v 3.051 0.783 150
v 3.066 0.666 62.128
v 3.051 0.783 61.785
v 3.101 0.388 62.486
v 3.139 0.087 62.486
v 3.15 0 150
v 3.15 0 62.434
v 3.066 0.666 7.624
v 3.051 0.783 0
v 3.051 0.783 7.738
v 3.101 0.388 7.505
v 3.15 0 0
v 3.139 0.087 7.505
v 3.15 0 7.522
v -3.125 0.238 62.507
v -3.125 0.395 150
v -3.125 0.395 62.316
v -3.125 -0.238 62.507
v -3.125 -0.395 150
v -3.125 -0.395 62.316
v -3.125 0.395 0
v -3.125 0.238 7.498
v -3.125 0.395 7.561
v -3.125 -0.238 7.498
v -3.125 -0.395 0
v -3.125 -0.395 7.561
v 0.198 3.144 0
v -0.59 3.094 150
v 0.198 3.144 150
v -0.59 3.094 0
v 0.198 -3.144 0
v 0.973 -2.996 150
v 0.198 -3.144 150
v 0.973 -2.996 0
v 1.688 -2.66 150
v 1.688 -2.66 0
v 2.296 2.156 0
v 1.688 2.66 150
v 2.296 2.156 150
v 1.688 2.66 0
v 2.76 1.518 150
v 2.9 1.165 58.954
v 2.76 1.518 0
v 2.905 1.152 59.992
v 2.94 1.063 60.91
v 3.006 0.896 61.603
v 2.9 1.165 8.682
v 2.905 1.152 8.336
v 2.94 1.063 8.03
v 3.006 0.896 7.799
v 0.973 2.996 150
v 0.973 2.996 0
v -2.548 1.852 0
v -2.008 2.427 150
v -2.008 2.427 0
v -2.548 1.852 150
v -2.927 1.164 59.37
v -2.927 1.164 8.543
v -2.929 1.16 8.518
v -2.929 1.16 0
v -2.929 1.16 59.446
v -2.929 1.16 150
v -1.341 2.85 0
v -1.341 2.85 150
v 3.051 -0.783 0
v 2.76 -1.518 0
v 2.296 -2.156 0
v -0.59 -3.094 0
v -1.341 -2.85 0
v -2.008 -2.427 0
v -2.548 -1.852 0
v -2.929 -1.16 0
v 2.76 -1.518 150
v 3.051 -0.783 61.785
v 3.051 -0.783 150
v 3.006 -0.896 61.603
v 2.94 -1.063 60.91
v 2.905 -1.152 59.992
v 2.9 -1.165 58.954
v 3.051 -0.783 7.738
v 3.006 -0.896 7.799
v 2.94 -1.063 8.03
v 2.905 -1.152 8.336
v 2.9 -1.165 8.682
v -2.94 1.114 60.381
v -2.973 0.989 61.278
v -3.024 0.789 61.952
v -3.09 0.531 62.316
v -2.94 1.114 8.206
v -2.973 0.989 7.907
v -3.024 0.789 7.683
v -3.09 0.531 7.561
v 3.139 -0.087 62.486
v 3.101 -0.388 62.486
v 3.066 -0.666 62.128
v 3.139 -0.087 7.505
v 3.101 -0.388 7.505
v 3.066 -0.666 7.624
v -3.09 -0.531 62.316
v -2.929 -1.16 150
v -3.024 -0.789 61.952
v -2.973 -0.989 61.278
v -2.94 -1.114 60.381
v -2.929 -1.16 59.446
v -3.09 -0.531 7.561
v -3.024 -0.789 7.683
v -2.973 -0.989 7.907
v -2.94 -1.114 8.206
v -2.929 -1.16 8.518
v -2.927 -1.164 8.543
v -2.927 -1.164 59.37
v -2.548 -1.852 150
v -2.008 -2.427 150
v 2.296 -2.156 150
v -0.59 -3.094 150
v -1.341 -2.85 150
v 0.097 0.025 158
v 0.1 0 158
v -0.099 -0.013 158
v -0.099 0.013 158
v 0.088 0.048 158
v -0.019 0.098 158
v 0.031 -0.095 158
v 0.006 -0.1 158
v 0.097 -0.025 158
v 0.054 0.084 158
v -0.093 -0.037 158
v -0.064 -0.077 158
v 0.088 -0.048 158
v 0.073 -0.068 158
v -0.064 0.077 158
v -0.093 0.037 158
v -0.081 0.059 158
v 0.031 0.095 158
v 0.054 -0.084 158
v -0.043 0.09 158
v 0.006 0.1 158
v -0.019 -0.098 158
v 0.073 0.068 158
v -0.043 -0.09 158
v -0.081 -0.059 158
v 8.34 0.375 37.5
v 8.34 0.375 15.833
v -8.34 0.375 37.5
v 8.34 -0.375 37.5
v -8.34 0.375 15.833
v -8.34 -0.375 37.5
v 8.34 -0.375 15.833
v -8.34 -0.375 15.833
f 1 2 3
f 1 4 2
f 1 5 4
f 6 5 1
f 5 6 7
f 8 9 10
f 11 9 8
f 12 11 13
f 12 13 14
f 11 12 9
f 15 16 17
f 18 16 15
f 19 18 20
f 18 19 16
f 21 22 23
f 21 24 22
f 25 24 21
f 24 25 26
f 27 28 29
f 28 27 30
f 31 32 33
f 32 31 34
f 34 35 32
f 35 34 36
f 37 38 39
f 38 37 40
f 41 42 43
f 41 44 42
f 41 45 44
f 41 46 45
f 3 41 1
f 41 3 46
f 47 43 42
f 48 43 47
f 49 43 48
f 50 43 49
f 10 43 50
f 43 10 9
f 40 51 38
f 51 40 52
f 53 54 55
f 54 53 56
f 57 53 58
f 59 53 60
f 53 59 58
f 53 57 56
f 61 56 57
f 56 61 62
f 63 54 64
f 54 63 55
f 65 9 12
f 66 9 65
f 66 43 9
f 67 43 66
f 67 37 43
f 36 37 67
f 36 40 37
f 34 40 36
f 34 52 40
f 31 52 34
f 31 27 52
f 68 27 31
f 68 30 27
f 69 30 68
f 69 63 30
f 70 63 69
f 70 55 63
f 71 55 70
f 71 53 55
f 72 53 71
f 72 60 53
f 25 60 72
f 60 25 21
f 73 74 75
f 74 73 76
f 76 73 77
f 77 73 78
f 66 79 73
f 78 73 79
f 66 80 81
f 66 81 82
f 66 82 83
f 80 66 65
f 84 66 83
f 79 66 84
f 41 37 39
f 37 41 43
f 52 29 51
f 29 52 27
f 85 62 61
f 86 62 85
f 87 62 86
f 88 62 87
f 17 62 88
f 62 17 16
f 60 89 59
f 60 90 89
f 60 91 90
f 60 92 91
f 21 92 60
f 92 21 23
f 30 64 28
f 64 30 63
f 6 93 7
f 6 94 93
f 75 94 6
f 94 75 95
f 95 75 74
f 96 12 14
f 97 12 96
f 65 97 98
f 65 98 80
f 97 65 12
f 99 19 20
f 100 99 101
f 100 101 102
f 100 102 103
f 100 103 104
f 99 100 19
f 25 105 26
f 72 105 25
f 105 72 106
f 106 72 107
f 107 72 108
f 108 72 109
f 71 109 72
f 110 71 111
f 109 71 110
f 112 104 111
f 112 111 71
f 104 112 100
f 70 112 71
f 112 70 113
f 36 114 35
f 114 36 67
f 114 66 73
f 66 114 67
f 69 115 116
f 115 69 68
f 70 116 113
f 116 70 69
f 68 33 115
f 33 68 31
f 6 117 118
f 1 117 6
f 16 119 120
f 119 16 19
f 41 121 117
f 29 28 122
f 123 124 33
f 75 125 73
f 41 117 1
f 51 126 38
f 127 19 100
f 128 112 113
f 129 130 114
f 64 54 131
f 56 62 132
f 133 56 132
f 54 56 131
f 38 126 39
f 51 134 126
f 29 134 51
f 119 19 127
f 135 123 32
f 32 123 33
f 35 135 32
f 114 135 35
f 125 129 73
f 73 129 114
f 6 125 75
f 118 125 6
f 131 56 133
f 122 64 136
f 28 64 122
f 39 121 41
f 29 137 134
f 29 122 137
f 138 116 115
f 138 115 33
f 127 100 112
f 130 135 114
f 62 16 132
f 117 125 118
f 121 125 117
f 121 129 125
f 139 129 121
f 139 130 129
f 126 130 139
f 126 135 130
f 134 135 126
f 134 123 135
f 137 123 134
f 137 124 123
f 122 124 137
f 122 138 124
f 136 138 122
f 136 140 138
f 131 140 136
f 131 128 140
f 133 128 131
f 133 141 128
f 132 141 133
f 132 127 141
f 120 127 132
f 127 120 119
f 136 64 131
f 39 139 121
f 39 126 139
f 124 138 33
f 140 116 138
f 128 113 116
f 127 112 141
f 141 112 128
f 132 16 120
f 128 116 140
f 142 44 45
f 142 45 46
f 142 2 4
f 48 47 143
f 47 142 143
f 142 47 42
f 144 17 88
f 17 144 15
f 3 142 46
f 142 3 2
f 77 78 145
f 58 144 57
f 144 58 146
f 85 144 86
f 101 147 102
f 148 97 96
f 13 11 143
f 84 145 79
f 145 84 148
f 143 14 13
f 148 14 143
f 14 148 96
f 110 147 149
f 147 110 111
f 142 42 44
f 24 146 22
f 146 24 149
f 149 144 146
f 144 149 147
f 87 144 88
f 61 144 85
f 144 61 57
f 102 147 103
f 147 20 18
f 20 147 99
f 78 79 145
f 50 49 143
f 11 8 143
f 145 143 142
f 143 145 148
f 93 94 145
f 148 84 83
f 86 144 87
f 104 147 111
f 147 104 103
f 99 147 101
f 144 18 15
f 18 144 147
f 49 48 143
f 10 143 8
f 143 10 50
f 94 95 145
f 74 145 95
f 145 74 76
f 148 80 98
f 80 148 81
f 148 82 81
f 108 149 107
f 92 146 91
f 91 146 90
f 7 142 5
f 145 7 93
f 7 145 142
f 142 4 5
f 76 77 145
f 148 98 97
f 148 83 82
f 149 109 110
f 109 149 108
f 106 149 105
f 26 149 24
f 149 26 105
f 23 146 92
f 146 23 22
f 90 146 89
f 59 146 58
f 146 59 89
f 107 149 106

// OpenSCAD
shaft_diameter = 6.3;
shaft_length = 150;
fletching_length = 65;
fletching_width = 16.68;
fletching_depth = .75;
point_length = 8;

// shaft
cylinder(r=shaft_diameter/2,h=shaft_length, $fn=25);

// tip
translate([0,0,shaft_length]){
	cylinder(r1=shaft_diameter/2, r2=.1, h=point_length, $fn=25);
}

// fletching
translate([0,0,5]){
	hull(){
		cylinder(r=shaft_diameter/4, h=fletching_length, $fn=25);	
		translate([-fletching_width/2,-(fletching_depth)/2,fletching_length/6]){
			cube([fletching_width,fletching_depth, fletching_length/3]);
		}
	}
}
